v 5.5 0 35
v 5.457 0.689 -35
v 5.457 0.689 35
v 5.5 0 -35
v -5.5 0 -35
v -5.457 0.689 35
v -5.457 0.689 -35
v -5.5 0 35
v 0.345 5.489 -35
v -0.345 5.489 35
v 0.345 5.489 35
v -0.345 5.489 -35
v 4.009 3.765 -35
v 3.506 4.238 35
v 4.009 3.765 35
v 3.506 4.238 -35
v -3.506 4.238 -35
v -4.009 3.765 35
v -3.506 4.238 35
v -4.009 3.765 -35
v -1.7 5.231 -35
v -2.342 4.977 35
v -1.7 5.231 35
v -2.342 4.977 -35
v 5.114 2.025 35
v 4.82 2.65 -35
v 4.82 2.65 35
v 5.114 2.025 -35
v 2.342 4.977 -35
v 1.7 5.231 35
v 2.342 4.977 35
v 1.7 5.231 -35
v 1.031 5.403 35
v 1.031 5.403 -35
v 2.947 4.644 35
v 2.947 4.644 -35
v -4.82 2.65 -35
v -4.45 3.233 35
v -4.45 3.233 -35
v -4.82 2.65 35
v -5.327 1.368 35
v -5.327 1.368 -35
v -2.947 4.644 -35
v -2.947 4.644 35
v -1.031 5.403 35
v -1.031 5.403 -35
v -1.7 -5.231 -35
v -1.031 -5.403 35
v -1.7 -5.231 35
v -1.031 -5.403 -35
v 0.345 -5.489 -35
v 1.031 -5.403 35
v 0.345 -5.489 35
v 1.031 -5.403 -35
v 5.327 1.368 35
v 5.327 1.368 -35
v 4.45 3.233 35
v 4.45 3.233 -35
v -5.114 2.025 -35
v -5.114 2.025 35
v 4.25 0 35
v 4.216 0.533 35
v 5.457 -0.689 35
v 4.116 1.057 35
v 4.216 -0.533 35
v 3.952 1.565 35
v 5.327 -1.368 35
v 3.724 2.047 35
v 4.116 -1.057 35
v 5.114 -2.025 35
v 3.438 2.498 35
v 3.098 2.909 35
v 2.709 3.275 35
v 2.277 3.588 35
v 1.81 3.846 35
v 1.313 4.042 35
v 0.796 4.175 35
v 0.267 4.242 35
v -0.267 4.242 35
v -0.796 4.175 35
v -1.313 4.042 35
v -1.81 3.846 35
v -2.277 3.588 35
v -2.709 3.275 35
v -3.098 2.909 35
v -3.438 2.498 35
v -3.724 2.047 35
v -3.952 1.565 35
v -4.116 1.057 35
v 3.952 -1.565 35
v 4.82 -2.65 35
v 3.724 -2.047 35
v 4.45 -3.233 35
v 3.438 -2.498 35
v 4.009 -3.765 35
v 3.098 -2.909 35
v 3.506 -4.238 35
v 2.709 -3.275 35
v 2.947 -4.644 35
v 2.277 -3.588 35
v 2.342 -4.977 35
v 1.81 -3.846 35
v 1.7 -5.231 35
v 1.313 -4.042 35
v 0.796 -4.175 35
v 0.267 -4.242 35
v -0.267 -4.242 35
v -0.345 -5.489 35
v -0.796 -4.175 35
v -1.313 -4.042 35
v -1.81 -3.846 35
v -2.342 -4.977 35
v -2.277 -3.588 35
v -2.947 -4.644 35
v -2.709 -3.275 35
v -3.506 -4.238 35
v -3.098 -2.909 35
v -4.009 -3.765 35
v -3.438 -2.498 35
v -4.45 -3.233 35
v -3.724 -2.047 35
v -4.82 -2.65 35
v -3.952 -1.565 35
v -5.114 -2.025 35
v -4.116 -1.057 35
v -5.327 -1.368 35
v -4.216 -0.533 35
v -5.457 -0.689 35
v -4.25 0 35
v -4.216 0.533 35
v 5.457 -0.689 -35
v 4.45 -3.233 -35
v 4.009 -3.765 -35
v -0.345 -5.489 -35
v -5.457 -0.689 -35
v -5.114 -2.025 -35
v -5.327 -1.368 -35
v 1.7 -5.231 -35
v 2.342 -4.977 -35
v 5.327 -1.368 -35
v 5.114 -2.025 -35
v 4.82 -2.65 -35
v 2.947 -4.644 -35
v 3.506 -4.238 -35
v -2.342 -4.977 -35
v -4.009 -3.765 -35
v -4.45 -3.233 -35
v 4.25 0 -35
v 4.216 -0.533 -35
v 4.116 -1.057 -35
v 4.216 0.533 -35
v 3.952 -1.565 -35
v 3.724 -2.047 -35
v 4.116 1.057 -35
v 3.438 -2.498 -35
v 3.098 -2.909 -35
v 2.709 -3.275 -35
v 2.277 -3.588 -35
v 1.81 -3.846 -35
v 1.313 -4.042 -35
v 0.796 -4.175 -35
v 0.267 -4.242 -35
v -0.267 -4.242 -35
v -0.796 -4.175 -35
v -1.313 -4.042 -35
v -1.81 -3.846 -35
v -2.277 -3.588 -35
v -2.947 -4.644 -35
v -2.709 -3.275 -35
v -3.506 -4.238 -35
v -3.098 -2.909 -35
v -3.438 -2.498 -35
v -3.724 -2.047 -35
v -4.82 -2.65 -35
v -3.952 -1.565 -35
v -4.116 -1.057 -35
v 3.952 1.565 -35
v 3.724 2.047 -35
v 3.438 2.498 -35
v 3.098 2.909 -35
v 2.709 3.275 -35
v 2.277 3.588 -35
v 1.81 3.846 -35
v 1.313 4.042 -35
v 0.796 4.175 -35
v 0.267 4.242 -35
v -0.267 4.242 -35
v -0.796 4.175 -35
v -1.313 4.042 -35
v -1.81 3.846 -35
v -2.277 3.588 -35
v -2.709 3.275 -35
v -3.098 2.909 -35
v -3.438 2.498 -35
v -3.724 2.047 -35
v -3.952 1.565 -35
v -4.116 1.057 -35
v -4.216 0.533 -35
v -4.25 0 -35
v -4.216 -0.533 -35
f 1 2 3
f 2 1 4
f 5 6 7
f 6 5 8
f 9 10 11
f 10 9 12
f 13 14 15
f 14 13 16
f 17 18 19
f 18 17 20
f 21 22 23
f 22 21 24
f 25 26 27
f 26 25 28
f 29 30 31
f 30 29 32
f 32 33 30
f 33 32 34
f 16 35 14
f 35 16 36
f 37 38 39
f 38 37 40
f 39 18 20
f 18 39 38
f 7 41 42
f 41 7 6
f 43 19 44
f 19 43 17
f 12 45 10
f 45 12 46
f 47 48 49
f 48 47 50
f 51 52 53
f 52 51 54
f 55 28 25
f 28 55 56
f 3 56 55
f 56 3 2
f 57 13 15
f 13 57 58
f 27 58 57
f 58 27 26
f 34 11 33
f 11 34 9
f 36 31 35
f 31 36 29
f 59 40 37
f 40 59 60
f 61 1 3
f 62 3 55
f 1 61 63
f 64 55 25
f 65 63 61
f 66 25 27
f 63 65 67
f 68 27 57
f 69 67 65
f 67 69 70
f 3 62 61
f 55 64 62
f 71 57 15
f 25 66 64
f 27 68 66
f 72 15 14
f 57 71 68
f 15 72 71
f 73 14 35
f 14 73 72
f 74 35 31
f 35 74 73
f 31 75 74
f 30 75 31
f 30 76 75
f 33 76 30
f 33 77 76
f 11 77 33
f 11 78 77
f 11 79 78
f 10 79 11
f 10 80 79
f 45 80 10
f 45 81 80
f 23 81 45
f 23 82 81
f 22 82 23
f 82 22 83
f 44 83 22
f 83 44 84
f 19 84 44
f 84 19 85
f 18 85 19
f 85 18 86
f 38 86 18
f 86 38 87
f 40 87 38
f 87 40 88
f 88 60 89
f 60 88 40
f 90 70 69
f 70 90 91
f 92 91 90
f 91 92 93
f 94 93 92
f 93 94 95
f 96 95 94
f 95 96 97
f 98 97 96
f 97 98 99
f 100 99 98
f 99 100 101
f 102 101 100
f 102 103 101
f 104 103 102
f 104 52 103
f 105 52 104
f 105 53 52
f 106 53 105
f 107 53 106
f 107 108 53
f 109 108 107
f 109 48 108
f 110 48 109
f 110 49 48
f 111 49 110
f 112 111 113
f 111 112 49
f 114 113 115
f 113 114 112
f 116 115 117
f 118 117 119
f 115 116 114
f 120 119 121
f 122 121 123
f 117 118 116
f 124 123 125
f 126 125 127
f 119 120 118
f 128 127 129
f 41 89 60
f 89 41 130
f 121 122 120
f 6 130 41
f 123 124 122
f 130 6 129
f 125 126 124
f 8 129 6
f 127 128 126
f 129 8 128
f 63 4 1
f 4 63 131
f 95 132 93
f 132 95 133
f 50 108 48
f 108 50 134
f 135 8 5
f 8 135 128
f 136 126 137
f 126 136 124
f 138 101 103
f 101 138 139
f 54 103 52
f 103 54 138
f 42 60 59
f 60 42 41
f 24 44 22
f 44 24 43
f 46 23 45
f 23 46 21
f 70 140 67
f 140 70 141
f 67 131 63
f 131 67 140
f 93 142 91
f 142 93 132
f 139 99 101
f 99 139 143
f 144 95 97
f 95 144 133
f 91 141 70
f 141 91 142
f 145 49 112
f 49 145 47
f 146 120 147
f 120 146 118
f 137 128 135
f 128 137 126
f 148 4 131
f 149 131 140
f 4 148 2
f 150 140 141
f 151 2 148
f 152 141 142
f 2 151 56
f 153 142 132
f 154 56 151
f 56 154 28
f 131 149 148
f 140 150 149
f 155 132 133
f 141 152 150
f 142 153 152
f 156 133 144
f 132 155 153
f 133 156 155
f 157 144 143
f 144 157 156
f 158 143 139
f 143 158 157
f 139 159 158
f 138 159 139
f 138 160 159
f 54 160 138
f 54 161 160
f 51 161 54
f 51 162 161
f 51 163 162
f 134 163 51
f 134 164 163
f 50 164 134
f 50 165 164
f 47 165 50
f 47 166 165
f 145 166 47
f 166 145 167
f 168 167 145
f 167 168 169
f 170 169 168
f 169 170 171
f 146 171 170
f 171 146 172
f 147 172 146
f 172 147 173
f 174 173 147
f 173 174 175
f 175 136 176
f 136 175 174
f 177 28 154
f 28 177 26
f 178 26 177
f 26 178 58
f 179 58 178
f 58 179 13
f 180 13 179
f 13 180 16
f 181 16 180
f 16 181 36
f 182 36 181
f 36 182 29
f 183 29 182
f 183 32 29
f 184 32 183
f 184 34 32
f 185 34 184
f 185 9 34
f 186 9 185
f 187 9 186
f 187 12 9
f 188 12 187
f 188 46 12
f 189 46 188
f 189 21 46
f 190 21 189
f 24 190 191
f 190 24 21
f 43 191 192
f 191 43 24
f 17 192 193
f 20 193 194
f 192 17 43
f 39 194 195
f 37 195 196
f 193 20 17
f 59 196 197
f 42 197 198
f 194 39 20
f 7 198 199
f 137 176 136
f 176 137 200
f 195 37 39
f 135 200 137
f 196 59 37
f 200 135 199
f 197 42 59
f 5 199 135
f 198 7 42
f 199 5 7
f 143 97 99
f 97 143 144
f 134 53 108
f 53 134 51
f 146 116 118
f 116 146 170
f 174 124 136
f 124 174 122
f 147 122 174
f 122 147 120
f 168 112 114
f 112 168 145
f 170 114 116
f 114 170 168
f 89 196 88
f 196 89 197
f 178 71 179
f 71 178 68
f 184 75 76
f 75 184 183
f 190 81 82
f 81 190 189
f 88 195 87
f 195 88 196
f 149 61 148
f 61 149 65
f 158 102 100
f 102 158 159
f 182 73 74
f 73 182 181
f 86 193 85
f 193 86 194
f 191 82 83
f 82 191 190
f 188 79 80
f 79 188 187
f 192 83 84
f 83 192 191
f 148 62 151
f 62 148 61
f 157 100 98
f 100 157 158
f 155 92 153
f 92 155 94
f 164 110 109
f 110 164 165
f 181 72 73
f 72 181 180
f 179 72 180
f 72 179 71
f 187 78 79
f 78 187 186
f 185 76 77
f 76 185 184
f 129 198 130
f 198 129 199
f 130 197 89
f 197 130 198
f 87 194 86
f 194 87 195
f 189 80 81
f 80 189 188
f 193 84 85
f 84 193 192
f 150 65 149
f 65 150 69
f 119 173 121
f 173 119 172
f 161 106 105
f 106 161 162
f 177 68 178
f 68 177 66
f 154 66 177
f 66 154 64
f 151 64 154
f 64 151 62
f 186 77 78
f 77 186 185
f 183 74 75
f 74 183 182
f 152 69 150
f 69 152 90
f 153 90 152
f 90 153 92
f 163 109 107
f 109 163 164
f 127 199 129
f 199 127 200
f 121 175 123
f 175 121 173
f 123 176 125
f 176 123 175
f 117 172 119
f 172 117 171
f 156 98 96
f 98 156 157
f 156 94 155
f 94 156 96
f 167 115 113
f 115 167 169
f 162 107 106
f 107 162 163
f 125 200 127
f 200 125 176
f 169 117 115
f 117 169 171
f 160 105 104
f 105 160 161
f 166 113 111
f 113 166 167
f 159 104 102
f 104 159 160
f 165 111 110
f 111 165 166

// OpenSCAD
$fn = 50;


difference() {
	union() {
		translate(v = [0, 0, -35.0000000000]) {
			cylinder(h = 70, r = 5.5000000000);
		}
	}
	union() {
		translate(v = [0, 0, -100.0000000000]) {
			cylinder(h = 200, r = 4.2500000000);
		}
	}
}
